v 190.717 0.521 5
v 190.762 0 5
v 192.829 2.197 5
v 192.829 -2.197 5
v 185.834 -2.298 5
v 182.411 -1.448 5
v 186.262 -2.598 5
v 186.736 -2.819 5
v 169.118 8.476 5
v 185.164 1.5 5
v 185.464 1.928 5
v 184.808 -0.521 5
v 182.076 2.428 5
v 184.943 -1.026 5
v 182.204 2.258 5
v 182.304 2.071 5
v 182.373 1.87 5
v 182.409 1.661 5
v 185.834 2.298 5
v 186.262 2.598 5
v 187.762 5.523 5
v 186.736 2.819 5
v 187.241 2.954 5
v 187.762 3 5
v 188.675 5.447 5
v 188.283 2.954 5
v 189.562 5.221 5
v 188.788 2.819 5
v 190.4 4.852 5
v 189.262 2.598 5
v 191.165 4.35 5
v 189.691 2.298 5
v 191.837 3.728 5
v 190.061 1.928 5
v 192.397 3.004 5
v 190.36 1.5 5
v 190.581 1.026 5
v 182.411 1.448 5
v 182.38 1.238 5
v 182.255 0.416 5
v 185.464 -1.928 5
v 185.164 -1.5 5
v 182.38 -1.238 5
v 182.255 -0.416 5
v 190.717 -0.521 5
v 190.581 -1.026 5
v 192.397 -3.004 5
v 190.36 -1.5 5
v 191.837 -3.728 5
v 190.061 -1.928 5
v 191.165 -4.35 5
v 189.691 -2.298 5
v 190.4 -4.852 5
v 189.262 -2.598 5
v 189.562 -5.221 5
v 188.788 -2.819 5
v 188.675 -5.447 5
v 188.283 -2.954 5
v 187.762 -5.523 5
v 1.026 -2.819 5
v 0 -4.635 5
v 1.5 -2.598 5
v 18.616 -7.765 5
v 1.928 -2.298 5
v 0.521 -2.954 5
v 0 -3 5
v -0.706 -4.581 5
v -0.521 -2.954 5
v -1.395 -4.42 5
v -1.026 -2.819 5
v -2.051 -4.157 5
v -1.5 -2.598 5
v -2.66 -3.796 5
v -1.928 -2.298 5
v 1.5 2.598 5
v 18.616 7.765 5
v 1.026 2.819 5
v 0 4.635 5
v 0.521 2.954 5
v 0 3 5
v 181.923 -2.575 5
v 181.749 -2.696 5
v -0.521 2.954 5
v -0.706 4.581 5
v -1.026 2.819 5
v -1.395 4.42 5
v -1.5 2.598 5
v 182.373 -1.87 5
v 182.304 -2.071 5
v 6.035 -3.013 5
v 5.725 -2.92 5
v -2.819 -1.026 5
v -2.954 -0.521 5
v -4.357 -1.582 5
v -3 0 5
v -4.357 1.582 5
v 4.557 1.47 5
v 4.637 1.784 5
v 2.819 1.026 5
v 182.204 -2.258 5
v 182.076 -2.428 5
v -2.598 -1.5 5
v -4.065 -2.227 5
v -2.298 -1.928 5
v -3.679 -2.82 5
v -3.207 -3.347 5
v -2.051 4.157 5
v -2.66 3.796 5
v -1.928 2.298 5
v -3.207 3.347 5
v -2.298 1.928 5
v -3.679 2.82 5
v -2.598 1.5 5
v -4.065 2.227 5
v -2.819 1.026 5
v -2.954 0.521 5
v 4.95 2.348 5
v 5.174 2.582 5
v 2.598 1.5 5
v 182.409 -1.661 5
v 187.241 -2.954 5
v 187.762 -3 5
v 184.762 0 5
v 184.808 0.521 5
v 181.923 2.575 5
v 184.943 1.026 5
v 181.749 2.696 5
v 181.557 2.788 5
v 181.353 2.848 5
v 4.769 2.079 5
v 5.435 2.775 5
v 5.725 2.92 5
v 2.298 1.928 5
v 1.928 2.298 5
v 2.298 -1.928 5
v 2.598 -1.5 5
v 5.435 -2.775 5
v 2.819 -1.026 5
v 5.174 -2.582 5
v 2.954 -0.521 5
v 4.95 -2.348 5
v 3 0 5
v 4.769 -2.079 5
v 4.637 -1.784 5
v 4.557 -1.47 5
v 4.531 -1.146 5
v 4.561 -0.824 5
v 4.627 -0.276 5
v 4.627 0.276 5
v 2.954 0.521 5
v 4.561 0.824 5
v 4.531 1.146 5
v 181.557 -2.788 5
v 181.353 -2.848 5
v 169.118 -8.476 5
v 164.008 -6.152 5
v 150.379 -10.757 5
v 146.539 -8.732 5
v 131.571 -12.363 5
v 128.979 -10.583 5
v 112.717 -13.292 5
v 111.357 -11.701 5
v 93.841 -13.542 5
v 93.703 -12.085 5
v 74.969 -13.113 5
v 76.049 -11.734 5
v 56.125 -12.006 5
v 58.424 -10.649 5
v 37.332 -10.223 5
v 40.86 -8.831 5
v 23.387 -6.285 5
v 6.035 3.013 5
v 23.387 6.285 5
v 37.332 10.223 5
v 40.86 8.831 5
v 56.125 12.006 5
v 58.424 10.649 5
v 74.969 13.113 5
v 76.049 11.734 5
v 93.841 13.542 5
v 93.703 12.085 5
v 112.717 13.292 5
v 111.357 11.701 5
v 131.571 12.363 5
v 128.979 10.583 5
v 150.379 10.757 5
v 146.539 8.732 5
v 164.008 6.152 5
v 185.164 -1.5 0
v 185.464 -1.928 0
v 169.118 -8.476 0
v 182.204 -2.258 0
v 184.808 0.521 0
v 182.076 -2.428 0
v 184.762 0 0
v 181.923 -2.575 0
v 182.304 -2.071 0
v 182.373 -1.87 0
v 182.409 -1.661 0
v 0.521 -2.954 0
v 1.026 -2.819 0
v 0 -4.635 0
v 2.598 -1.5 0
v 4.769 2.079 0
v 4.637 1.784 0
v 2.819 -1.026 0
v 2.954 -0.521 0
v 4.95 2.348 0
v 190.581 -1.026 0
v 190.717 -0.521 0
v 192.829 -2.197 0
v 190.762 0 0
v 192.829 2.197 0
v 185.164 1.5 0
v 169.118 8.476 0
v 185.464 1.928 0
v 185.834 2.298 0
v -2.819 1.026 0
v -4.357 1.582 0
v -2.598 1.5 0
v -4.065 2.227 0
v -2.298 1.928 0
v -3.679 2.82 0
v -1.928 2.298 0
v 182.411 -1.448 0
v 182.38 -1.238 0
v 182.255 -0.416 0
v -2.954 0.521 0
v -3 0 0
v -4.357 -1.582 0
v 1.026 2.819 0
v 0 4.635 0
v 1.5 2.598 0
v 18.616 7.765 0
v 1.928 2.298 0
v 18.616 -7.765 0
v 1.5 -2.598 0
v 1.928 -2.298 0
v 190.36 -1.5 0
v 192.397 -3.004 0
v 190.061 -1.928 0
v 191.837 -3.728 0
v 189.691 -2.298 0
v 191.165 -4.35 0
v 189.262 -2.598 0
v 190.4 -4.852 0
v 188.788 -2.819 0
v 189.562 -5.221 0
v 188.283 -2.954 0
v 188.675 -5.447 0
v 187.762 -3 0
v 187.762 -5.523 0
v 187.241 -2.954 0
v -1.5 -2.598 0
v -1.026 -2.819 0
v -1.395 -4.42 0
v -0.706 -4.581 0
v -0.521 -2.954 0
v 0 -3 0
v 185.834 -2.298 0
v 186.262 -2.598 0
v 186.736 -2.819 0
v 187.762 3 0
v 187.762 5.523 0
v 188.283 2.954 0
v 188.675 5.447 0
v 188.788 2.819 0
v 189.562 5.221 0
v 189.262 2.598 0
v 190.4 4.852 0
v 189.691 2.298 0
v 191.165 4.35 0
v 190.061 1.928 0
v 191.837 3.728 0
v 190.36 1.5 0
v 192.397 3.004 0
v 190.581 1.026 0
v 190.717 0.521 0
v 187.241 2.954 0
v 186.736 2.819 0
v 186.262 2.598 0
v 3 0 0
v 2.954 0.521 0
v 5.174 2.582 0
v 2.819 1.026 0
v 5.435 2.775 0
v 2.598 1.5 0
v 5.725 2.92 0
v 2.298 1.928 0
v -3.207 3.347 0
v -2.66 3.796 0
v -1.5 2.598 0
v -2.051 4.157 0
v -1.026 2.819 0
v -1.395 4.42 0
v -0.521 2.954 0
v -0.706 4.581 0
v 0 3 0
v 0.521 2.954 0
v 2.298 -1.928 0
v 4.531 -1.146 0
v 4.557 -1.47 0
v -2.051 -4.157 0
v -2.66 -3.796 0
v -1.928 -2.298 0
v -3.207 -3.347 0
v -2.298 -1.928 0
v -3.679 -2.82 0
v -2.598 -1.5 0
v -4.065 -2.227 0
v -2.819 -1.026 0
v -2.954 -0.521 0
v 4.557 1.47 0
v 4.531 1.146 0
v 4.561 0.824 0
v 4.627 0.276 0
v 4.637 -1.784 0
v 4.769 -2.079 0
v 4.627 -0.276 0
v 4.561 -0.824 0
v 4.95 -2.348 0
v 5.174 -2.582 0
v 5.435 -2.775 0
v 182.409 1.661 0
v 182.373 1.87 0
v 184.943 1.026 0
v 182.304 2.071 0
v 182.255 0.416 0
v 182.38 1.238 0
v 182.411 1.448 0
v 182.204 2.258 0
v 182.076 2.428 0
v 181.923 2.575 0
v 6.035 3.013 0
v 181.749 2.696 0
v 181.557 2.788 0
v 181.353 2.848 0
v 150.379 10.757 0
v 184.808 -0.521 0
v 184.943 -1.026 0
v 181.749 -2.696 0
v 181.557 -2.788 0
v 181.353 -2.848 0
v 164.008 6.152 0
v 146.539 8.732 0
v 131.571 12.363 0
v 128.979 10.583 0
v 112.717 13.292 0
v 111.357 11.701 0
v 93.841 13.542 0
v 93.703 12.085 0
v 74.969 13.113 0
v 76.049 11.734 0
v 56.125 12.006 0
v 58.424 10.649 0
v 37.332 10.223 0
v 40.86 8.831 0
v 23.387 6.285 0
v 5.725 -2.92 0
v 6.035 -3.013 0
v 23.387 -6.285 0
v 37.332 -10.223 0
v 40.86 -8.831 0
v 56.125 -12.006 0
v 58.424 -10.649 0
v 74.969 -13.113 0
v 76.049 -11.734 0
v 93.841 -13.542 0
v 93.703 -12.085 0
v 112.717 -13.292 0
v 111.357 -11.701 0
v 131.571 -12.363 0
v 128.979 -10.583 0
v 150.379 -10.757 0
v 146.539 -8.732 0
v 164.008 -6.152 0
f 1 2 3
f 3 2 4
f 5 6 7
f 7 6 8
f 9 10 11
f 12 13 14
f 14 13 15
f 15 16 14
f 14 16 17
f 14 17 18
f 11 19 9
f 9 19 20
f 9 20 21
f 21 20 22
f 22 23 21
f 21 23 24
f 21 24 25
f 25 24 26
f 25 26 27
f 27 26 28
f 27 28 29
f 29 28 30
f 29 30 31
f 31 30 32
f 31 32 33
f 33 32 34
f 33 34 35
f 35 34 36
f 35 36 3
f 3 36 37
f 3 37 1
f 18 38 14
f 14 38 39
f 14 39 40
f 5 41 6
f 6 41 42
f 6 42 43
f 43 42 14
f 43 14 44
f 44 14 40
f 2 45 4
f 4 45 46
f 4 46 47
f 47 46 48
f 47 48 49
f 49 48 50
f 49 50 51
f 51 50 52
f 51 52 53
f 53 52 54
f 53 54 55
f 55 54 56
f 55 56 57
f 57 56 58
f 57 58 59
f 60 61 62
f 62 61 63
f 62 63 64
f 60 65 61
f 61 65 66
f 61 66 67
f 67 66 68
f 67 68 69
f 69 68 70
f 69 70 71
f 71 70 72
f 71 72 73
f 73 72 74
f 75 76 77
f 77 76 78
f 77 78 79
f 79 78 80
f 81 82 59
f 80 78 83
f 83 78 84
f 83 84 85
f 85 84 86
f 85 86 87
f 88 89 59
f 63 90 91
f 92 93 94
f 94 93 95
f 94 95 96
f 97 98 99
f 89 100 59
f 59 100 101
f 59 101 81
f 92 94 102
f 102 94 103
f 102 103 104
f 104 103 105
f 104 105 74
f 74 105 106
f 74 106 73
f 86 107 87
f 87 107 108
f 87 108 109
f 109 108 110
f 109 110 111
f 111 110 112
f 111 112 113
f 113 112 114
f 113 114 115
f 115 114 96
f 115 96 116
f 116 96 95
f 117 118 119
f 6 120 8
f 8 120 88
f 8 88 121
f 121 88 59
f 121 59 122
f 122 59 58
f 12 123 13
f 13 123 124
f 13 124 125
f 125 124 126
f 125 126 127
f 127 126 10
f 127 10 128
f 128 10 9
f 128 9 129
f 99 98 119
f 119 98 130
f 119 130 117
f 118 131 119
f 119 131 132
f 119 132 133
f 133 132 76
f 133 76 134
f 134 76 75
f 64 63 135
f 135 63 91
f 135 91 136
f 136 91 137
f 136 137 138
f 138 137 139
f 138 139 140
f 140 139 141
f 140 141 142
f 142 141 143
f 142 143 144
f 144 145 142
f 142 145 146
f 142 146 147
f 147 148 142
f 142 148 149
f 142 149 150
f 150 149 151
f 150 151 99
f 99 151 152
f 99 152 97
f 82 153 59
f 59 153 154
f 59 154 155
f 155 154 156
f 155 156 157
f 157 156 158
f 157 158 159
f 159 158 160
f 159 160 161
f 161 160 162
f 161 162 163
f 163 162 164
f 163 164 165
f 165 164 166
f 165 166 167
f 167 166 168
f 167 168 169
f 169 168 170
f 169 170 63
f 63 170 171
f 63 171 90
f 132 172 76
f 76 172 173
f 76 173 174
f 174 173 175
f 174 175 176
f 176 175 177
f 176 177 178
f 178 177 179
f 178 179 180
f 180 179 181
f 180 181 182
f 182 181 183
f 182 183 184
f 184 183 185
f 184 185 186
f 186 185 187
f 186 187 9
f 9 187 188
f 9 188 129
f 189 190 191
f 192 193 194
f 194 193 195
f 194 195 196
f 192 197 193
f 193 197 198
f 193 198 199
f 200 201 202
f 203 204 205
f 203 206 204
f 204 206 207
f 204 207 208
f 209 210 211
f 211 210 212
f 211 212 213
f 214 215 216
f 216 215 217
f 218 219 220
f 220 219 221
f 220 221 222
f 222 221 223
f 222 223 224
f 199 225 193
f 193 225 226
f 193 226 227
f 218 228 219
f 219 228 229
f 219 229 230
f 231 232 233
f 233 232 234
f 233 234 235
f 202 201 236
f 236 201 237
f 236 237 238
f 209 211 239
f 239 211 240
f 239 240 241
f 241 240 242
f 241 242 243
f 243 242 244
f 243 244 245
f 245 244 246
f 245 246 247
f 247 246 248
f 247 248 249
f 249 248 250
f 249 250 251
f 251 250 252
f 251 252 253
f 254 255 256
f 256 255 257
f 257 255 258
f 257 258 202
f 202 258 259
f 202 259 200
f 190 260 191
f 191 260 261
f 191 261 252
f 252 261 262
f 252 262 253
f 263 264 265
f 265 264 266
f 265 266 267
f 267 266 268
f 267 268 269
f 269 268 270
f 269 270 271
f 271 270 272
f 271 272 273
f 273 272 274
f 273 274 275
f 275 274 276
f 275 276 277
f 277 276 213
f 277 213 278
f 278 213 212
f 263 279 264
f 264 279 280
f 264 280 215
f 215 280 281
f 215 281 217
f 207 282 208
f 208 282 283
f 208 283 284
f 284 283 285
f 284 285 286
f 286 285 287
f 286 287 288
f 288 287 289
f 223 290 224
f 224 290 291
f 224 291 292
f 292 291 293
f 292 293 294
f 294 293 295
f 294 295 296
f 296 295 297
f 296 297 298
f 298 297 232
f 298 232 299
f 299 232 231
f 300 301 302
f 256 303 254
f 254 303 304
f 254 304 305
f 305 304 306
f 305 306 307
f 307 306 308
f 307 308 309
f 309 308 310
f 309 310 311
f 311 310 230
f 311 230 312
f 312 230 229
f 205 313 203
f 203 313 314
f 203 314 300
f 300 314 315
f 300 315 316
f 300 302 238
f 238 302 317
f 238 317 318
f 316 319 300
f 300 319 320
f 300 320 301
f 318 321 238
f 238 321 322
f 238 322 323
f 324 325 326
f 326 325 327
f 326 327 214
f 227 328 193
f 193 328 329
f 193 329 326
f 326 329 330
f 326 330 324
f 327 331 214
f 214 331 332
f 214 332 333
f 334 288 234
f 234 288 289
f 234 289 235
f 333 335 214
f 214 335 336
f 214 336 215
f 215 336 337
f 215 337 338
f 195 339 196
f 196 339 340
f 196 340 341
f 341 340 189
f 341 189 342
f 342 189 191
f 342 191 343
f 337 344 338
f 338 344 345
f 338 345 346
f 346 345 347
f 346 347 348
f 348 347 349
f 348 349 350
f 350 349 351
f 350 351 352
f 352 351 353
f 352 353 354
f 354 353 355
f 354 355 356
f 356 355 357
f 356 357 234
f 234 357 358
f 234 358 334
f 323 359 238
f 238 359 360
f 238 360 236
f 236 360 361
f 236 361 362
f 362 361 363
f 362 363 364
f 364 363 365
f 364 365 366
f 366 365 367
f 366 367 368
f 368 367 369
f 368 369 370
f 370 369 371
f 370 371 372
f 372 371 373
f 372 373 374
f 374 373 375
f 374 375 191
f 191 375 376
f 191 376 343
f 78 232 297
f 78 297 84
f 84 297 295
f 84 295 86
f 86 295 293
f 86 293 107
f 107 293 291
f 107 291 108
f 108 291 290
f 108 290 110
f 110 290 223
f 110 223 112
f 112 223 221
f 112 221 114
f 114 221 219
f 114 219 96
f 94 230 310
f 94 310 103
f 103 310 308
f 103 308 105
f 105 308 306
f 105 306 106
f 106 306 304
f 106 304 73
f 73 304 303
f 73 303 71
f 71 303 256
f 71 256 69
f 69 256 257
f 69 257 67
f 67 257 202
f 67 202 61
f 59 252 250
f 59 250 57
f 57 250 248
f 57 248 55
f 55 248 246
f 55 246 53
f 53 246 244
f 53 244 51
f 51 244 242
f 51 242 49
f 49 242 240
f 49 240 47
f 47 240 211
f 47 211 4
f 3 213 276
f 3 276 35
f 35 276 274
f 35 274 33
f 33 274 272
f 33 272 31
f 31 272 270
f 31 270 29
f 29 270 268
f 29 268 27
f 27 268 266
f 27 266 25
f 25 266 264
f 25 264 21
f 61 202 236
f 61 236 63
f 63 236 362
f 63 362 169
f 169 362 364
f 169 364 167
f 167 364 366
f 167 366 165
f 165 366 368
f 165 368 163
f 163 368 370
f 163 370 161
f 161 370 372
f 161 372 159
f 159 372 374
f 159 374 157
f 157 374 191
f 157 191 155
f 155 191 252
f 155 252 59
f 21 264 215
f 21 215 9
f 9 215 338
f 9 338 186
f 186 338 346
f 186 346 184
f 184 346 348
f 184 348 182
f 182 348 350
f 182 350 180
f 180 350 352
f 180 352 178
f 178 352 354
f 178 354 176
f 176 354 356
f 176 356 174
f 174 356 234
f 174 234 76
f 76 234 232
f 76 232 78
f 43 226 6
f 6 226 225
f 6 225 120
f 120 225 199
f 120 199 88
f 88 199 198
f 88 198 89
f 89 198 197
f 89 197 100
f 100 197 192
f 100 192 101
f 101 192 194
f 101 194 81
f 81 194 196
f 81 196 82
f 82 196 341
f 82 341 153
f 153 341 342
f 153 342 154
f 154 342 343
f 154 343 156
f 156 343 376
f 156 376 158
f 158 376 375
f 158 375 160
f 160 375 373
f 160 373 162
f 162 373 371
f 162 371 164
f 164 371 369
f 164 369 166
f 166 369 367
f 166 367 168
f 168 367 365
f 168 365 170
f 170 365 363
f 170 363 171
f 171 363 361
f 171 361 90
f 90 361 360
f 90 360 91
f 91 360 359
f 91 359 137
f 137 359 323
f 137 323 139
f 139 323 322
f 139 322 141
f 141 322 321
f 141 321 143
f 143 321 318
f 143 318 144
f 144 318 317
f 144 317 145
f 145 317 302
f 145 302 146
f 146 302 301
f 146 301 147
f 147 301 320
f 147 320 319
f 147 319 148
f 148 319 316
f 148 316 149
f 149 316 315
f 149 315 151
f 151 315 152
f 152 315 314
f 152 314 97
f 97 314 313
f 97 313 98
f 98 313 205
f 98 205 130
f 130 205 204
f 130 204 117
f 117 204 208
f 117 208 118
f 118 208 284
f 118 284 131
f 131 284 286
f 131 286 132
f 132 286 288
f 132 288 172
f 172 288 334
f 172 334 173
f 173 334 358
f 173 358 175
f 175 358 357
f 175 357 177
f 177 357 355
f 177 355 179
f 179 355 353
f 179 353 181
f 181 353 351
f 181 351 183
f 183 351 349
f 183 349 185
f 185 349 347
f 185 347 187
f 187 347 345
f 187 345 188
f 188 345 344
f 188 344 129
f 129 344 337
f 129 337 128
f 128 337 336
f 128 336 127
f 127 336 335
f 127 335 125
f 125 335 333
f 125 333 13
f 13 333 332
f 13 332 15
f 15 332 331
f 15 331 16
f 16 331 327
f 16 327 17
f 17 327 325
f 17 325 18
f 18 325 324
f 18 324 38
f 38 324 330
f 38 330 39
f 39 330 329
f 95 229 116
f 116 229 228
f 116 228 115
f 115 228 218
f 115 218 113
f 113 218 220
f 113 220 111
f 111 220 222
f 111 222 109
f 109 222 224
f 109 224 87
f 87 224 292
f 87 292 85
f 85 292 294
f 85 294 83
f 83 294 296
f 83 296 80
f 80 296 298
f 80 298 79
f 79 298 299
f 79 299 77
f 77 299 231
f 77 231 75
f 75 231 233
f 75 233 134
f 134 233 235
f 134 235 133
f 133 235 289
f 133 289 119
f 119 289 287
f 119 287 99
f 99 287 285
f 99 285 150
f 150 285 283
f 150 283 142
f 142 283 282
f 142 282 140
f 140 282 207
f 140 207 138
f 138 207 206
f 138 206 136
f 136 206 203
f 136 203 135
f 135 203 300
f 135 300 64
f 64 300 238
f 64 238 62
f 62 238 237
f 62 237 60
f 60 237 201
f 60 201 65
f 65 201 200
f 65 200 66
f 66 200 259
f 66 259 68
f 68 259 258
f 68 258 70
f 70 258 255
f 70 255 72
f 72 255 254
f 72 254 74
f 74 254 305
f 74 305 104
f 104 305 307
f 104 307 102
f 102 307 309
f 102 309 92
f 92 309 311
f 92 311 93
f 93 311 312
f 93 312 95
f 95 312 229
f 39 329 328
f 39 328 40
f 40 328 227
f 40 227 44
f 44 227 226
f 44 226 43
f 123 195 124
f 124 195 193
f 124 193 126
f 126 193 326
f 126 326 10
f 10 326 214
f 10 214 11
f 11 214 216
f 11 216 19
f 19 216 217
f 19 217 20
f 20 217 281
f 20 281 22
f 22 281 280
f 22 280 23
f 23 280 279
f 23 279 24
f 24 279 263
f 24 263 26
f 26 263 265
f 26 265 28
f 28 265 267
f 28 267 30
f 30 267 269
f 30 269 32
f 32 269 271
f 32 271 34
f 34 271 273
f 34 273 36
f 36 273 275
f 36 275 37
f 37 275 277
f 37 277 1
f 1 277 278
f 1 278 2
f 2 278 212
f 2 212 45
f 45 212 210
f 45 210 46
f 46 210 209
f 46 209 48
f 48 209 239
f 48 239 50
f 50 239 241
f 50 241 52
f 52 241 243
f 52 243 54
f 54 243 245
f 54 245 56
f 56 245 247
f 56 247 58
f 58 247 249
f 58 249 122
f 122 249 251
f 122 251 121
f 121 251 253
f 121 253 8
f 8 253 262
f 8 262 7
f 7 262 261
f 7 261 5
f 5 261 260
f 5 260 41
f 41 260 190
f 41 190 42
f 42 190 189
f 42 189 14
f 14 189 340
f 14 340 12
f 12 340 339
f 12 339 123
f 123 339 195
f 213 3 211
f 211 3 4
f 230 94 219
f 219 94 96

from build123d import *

# Parameters (mm, degrees)
SZKIC1_R                    = 4.635188213
SZKIC1_R_2                  = 3.000000079
SZKIC1_R_3                  = 5.522620658
DODANIE_WYCI_GNI_CIE1_DEPTH = 5
SZKIC2_W                    = 1.618528634
SZKIC2_H                    = 7.505645785
SZKIC2_W_2                  = 0.651830256
SZKIC2_H_2                  = 5.051684483
WYTNIJ_WYCI_GNI_CIE3_DEPTH  = 6


with BuildPart() as part:
    # Szkic1 → Dodanie-wyciągnięcie1 (new body)
    with BuildSketch(Plane.XY):
        with BuildLine():
            ThreePointArc((182.852037835, 2.527386464), (184.886505162, 4.714718212), (187.7624, 5.522620658))
            ThreePointArc((187.7624, 5.522620658), (93.841201508, 13.541760303), (0, 4.635188213))
            ThreePointArc((0, 4.635188213), (2.197225531, 4.081319607), (3.869348656, 2.552079691))
            ThreePointArc((3.869348656, 2.552079691), (4.951964009, 2.784051377), (6.035181021, 3.013197121))
            ThreePointArc((6.035181021, 3.013197121), (93.702955413, 12.084887853), (181.353491517, 2.8481265))
            ThreePointArc((181.353491517, 2.8481265), (182.102909488, 2.688433069), (182.852037835, 2.527386464))
        make_face()
        with BuildLine():
            ThreePointArc((0, -4.635188213), (93.841201508, -13.541760303), (187.7624, -5.522620658))
            ThreePointArc((187.7624, -5.522620658), (184.886505162, -4.714718212), (182.852037835, -2.527386464))
            ThreePointArc((182.852037835, -2.527386464), (182.102909488, -2.688433069), (181.353491517, -2.8481265))
            ThreePointArc((181.353491517, -2.8481265), (93.702955413, -12.084887853), (6.035181021, -3.013197121))
            ThreePointArc((6.035181021, -3.013197121), (4.951964009, -2.784051377), (3.869348656, -2.552079691))
            ThreePointArc((3.869348656, -2.552079691), (2.197225531, -4.081319607), (0, -4.635188213))
        make_face()
        Circle(SZKIC1_R)
        Circle(SZKIC1_R_2, mode=Mode.SUBTRACT)
        with BuildLine():
            ThreePointArc((4.561393731, -0.823806409), (4.303032237, -1.723044787), (3.869348656, -2.552079691))
            ThreePointArc((3.869348656, -2.552079691), (4.951964009, -2.784051377), (6.035181021, -3.013197121))
            ThreePointArc((6.035181021, -3.013197121), (4.853956333, -2.21760299), (4.561393731, -0.823806409))
        make_face()
        with BuildLine():
            ThreePointArc((6.035181021, 3.013197121), (4.951964009, 2.784051377), (3.869348656, 2.552079691))
            ThreePointArc((3.869348656, 2.552079691), (4.303032237, 1.723044787), (4.561393731, 0.823806409))
            ThreePointArc((4.561393731, 0.823806409), (4.853956333, 2.21760299), (6.035181021, 3.013197121))
        make_face()
        with BuildLine():
            ThreePointArc((181.353491517, -2.8481265), (182.102909488, -2.688433069), (182.852037835, -2.527386464))
            ThreePointArc((182.852037835, -2.527386464), (182.576004096, -1.897534311), (182.380388165, -1.238259886))
            ThreePointArc((182.380388165, -1.238259886), (182.204390831, -2.258445368), (181.353491517, -2.8481265))
        make_face()
        with Locations((187.7624, 0)):
            Circle(SZKIC1_R_3)
        with Locations((187.7624, 0)):
            Circle(SZKIC1_R_2, mode=Mode.SUBTRACT)
        with BuildLine():
            ThreePointArc((182.380388165, 1.238259886), (182.576004096, 1.897534311), (182.852037835, 2.527386464))
            ThreePointArc((182.852037835, 2.527386464), (182.102909488, 2.688433069), (181.353491517, 2.8481265))
            ThreePointArc((181.353491517, 2.8481265), (182.204390831, 2.258445368), (182.380388165, 1.238259886))
        make_face()
    extrude(amount=DODANIE_WYCI_GNI_CIE1_DEPTH)

    # Szkic2 → Wytnij-wyciągnięcie3 (cut, through all)
    with BuildSketch(Plane.XY):
        with Locations((193.638606269, 0.381285041)):
            Rectangle(SZKIC2_W, SZKIC2_H)
        with Locations((-4.682734605, -0.038745932)):
            Rectangle(SZKIC2_W_2, SZKIC2_H_2)
    extrude(amount=WYTNIJ_WYCI_GNI_CIE3_DEPTH, mode=Mode.SUBTRACT)


solid = part.part
